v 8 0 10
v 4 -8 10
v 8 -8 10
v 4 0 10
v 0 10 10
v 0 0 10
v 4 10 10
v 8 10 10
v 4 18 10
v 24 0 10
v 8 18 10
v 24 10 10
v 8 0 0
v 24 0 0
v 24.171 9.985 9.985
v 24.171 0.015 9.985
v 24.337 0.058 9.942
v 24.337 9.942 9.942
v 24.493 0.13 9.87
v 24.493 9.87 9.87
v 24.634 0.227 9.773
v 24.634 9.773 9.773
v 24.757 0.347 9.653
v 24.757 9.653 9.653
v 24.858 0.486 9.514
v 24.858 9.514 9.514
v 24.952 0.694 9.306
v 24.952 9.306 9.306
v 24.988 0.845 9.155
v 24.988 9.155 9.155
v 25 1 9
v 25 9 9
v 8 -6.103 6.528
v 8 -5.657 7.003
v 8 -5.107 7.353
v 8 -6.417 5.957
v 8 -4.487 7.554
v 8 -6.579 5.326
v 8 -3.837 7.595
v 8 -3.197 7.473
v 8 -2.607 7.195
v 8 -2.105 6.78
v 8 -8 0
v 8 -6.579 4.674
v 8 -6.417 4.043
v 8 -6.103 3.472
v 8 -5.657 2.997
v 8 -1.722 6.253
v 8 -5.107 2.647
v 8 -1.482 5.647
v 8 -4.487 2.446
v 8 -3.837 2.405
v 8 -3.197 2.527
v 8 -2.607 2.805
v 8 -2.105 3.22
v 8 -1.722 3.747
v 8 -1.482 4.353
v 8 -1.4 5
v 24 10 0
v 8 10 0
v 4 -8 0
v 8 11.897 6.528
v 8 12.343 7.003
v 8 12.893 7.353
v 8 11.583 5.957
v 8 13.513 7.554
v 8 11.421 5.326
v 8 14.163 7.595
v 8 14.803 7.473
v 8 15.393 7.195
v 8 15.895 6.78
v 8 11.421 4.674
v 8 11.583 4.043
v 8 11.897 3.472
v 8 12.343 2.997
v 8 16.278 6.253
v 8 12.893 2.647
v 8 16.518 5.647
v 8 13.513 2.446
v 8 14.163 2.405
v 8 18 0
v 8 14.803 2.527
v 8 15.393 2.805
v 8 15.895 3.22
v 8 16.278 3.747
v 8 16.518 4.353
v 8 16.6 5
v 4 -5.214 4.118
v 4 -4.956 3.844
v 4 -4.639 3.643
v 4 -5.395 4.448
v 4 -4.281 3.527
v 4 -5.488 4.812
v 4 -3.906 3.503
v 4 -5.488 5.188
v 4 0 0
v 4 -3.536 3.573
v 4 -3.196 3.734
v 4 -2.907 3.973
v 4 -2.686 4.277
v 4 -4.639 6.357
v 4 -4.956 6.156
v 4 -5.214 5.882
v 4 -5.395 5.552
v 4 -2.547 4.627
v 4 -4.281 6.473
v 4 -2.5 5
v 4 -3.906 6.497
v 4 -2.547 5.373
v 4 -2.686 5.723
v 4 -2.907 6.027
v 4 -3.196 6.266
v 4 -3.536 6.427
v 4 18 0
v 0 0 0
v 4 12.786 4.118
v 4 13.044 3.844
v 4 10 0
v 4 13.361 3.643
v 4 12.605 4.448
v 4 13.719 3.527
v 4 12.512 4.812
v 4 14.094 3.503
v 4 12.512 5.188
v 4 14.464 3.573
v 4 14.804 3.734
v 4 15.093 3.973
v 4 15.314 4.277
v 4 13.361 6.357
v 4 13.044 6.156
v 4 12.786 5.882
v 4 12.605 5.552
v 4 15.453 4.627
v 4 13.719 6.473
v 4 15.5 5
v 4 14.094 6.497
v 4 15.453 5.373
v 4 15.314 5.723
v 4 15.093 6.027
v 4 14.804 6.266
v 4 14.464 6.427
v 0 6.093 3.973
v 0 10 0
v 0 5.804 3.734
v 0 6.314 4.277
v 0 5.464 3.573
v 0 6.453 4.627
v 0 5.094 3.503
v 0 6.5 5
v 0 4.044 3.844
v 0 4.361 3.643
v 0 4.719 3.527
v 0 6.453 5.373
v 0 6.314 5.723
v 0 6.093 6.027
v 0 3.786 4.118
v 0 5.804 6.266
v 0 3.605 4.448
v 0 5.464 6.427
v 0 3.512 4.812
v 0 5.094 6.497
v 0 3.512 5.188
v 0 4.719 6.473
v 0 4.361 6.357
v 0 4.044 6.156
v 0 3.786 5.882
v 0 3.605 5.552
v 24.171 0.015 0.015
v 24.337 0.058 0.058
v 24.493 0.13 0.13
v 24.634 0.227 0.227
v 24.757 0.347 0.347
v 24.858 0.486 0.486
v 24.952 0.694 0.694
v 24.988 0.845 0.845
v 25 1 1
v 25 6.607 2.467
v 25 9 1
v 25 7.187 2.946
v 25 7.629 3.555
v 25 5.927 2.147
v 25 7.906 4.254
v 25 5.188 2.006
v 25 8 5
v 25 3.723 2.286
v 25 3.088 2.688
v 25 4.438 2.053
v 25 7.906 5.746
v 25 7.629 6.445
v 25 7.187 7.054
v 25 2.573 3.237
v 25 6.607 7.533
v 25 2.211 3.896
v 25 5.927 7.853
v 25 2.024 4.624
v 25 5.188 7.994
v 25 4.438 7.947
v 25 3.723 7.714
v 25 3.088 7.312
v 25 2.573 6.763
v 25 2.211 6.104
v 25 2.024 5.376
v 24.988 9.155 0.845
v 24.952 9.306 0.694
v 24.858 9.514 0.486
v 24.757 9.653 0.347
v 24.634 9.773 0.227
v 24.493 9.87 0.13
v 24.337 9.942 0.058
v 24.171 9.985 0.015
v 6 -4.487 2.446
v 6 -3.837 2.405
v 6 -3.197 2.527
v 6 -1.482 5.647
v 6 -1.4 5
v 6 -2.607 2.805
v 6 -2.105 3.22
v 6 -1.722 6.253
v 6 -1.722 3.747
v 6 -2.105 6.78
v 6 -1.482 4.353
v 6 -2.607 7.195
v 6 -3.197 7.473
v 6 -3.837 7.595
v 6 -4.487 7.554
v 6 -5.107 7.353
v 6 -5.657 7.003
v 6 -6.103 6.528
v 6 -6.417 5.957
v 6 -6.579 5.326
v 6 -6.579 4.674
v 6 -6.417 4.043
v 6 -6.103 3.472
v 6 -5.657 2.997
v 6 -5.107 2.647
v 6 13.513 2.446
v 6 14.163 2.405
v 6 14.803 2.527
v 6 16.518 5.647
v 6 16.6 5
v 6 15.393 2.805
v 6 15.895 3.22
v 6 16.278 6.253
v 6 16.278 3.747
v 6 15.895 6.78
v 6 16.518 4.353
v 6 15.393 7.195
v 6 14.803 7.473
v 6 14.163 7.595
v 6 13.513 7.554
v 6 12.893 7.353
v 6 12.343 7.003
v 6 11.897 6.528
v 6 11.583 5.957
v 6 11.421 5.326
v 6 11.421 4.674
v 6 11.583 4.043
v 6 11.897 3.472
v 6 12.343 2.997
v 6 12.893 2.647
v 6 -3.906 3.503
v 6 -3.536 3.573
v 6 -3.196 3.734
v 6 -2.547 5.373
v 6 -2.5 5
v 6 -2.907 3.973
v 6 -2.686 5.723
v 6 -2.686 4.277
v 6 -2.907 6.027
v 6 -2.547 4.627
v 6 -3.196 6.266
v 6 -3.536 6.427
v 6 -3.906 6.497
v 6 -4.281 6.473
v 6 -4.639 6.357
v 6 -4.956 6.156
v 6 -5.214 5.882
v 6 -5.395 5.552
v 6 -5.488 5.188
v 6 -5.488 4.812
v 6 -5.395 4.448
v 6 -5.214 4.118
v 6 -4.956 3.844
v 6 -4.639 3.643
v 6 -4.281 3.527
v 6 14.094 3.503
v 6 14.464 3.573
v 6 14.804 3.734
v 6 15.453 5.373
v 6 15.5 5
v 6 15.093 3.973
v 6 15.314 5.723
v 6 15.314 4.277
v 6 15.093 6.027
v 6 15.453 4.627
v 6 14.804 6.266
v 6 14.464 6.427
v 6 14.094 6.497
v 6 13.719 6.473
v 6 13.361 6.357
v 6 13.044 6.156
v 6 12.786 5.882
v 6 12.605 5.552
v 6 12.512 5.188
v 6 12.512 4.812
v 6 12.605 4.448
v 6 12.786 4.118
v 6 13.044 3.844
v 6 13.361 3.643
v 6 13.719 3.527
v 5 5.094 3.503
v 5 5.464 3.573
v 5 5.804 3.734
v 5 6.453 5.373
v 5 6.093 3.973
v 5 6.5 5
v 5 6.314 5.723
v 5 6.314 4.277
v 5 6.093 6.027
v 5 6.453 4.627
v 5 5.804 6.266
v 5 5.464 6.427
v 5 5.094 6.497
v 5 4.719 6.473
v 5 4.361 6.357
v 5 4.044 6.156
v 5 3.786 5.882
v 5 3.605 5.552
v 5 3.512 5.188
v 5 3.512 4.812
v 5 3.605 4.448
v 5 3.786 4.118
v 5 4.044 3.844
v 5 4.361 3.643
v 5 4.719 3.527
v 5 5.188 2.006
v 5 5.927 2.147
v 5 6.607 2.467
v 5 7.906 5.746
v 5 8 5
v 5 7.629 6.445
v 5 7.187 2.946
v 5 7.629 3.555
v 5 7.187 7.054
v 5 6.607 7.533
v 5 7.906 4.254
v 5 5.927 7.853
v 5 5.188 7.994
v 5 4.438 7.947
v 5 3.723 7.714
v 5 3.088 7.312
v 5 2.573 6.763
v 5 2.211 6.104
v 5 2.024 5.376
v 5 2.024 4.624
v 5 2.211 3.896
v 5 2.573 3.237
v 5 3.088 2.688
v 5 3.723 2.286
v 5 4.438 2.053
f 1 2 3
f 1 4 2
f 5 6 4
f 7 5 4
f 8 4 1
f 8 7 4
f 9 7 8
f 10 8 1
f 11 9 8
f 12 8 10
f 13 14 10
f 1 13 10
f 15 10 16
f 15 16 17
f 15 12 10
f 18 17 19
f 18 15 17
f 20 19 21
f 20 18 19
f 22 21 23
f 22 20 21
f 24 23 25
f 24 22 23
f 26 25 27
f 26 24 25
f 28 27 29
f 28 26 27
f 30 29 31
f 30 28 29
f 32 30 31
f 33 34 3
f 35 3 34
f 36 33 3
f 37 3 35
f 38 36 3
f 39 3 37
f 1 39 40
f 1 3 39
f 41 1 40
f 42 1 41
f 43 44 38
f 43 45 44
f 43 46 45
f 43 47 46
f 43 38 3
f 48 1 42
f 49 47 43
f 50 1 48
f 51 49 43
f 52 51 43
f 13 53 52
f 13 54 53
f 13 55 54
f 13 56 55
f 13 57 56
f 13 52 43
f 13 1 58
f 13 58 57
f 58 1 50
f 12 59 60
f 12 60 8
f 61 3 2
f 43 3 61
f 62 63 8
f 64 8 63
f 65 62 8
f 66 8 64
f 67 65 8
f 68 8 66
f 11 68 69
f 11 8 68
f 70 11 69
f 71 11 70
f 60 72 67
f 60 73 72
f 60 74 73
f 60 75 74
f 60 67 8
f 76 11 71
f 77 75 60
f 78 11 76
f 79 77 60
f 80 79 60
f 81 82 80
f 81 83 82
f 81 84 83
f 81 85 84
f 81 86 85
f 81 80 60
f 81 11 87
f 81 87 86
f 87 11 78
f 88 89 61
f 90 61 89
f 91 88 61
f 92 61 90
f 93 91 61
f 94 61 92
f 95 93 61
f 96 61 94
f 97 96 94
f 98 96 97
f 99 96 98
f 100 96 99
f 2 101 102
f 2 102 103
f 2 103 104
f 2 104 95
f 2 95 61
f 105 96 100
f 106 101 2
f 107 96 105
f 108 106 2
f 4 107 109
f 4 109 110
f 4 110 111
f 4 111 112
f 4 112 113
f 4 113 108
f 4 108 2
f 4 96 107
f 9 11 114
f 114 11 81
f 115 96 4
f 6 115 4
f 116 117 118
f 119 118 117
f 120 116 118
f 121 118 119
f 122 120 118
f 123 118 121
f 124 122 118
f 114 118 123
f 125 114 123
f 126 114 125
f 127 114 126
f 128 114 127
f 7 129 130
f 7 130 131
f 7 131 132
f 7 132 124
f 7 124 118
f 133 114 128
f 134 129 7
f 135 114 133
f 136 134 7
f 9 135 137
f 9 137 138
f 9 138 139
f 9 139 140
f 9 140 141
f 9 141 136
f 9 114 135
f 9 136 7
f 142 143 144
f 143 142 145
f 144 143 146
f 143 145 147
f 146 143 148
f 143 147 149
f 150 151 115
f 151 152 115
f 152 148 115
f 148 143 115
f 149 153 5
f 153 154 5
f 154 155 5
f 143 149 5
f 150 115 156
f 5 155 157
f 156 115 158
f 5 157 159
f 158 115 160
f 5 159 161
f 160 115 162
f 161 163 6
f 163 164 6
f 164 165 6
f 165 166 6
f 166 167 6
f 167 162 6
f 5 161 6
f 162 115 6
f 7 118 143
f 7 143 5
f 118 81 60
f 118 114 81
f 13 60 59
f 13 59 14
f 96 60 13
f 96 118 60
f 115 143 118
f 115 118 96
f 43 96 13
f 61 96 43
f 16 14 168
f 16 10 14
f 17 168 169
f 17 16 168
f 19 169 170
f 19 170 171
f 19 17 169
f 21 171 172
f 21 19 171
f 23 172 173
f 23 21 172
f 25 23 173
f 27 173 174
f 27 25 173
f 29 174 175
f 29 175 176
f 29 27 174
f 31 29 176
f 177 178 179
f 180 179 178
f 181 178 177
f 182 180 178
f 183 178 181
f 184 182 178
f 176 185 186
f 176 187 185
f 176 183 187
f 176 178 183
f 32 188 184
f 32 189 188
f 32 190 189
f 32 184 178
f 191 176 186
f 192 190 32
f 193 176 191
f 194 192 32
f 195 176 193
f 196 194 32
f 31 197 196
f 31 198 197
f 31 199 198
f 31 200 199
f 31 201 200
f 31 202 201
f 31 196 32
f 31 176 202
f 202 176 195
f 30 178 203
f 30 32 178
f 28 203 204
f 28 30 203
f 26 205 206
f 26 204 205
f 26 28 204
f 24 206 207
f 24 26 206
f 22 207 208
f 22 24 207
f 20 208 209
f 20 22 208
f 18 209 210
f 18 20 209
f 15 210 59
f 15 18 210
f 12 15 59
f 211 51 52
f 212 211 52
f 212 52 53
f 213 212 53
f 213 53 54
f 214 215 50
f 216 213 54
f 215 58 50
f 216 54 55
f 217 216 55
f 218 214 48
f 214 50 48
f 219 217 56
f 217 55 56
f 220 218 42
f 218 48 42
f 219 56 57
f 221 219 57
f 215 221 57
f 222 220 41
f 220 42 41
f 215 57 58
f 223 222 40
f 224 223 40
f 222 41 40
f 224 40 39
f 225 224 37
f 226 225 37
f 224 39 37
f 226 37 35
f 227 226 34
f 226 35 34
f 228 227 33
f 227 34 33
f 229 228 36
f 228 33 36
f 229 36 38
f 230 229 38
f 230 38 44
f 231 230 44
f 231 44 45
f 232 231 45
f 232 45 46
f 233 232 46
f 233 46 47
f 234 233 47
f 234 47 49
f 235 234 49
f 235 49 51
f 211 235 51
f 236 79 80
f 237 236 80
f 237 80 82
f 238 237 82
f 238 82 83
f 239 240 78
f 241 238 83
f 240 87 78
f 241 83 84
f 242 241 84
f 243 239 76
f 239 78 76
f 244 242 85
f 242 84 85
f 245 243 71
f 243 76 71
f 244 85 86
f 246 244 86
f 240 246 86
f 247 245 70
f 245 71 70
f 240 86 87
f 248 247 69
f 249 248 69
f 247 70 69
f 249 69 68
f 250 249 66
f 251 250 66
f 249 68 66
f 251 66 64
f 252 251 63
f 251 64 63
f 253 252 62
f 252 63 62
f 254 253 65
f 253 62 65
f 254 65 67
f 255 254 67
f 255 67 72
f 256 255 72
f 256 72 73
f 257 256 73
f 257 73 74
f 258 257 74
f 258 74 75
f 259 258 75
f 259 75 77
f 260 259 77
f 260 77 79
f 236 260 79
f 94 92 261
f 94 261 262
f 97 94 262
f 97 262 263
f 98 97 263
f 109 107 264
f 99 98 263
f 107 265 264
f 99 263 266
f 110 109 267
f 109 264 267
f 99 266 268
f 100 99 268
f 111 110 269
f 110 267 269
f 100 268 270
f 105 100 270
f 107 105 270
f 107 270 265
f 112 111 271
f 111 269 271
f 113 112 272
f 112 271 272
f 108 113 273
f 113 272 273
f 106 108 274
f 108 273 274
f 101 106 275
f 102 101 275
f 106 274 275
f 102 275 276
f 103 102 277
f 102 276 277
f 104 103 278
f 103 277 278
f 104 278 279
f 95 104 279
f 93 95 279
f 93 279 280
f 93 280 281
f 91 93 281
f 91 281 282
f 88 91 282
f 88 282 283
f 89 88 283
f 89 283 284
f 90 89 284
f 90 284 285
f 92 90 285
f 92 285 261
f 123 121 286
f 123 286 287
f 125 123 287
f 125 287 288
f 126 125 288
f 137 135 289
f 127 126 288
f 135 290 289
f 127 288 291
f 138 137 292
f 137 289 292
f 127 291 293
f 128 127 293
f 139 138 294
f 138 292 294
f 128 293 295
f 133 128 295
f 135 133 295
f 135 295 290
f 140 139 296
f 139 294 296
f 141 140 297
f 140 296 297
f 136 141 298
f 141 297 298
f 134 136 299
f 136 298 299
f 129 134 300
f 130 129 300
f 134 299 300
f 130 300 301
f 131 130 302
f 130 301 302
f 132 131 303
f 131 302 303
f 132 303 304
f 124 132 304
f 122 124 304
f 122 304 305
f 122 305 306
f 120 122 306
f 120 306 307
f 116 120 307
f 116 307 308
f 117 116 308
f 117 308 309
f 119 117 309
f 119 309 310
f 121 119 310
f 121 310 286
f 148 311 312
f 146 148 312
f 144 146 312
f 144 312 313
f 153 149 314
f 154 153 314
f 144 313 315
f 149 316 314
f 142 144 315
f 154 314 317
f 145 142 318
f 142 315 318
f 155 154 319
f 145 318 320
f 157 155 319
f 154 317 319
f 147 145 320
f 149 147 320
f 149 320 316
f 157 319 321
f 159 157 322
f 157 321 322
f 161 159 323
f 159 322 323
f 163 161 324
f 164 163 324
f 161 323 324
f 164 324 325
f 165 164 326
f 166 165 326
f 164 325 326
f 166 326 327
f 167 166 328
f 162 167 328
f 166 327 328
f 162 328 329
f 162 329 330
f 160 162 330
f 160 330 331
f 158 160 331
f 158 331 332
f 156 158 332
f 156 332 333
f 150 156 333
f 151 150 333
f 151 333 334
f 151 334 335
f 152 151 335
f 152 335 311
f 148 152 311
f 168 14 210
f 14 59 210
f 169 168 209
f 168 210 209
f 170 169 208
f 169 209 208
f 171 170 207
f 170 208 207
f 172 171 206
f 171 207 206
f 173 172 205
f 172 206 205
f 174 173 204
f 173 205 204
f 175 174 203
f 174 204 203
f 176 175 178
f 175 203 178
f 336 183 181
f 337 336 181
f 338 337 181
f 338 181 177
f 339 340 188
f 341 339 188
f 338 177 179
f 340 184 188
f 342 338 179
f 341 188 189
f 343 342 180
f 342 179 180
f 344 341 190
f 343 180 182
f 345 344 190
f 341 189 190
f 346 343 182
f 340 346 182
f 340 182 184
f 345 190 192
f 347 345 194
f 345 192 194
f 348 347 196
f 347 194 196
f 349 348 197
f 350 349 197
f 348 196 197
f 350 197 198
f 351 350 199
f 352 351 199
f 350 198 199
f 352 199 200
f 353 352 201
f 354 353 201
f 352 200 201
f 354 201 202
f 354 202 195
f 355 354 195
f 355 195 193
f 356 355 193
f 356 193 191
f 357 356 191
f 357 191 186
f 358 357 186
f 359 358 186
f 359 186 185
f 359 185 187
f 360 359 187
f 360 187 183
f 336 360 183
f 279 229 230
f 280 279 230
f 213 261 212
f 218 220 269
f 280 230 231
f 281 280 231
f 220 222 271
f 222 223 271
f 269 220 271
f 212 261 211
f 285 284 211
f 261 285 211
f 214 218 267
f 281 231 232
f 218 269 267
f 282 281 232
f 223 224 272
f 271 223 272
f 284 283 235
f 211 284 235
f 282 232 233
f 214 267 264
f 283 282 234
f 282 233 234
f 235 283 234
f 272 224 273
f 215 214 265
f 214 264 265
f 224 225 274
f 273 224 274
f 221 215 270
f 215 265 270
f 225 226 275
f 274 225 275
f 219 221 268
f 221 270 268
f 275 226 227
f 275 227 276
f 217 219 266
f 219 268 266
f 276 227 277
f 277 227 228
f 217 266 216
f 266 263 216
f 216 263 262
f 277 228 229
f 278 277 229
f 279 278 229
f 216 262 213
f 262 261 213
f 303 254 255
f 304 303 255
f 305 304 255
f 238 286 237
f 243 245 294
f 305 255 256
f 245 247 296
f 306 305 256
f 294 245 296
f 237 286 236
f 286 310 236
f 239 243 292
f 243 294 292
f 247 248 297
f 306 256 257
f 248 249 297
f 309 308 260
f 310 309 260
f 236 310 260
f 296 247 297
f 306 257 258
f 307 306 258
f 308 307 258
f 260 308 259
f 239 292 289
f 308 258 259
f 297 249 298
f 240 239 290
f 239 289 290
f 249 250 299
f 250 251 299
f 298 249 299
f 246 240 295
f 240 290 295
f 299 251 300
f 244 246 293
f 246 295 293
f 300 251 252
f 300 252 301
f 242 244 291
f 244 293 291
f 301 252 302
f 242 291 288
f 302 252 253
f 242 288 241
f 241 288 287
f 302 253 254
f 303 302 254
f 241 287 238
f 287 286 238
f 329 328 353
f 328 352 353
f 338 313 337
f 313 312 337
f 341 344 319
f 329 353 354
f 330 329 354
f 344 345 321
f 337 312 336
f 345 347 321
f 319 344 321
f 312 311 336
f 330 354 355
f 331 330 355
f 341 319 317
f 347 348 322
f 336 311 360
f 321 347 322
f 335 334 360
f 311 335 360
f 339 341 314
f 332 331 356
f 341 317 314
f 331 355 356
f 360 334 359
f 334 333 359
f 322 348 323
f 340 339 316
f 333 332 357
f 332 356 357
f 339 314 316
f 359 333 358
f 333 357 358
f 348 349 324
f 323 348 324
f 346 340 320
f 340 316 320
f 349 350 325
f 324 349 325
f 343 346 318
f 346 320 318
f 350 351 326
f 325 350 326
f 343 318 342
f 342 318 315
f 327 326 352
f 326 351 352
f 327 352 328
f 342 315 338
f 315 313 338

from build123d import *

# Parameters (mm, degrees)
BOX_W           = 25
BOX_H           = 10
BOX_DEPTH       = 10
SKETCH_W        = 4
SKETCH_H        = 10
PAD_DEPTH       = 8
PAD_DEPTH_BACK  = 18
SKETCH001_R     = 1.5
POCKET_DEPTH    = 25.001
SKETCH002_R     = 3
POCKET001_DEPTH = 20
SKETCH003_R     = 1.5
POCKET002_DEPTH = 8.001
SKETCH004_R     = 2.6
POCKET003_DEPTH = 2
FILLET_R        = 1


with BuildPart() as part:
    # Box → Box (new body)
    with BuildSketch(Plane.XY):
        with Locations((12.5, 5)):
            Rectangle(BOX_W, BOX_H)
    extrude(amount=BOX_DEPTH)

    # Sketch → Pad (new body, two sides)
    with BuildSketch(Plane.XZ) as pad_sk:
        with Locations((6, 5)):
            Rectangle(SKETCH_W, SKETCH_H)
    extrude(amount=PAD_DEPTH)
    extrude(pad_sk.sketch, amount=-PAD_DEPTH_BACK)

    # Sketch001 → Pocket (cut, through all)
    with BuildSketch(Plane.YZ.offset(25)):
        with Locations((5, 5)):
            Circle(SKETCH001_R)
    extrude(amount=-POCKET_DEPTH, mode=Mode.SUBTRACT)

    # Sketch002 → Pocket001 (cut)
    with BuildSketch(Plane.YZ.offset(25)):
        with Locations((5, 5)):
            Circle(SKETCH002_R)
    extrude(amount=-POCKET001_DEPTH, mode=Mode.SUBTRACT)

    # Sketch003 → Pocket002 (cut, through all)
    with BuildSketch(Plane.YZ.offset(8)):
        with Locations((-4, 5)):
            Circle(SKETCH003_R)
        with Locations((14, 5)):
            Circle(SKETCH003_R)
    extrude(amount=-POCKET002_DEPTH, mode=Mode.SUBTRACT)

    # Sketch004 → Pocket003 (cut)
    with BuildSketch(Plane.YZ.offset(8)):
        with Locations((-4, 5)):
            Circle(SKETCH004_R)
        with Locations((14, 5)):
            Circle(SKETCH004_R)
    extrude(amount=-POCKET003_DEPTH, mode=Mode.SUBTRACT)

    # Fillet
    fillet_edges = [part.edges().sort_by_distance(p)[0] for p in [
        (25, 5, 10),
        (25, 0, 5),
        (25, 5, 0),
        (25, 10, 5),
    ]]
    fillet(fillet_edges, radius=FILLET_R)


solid = part.part
